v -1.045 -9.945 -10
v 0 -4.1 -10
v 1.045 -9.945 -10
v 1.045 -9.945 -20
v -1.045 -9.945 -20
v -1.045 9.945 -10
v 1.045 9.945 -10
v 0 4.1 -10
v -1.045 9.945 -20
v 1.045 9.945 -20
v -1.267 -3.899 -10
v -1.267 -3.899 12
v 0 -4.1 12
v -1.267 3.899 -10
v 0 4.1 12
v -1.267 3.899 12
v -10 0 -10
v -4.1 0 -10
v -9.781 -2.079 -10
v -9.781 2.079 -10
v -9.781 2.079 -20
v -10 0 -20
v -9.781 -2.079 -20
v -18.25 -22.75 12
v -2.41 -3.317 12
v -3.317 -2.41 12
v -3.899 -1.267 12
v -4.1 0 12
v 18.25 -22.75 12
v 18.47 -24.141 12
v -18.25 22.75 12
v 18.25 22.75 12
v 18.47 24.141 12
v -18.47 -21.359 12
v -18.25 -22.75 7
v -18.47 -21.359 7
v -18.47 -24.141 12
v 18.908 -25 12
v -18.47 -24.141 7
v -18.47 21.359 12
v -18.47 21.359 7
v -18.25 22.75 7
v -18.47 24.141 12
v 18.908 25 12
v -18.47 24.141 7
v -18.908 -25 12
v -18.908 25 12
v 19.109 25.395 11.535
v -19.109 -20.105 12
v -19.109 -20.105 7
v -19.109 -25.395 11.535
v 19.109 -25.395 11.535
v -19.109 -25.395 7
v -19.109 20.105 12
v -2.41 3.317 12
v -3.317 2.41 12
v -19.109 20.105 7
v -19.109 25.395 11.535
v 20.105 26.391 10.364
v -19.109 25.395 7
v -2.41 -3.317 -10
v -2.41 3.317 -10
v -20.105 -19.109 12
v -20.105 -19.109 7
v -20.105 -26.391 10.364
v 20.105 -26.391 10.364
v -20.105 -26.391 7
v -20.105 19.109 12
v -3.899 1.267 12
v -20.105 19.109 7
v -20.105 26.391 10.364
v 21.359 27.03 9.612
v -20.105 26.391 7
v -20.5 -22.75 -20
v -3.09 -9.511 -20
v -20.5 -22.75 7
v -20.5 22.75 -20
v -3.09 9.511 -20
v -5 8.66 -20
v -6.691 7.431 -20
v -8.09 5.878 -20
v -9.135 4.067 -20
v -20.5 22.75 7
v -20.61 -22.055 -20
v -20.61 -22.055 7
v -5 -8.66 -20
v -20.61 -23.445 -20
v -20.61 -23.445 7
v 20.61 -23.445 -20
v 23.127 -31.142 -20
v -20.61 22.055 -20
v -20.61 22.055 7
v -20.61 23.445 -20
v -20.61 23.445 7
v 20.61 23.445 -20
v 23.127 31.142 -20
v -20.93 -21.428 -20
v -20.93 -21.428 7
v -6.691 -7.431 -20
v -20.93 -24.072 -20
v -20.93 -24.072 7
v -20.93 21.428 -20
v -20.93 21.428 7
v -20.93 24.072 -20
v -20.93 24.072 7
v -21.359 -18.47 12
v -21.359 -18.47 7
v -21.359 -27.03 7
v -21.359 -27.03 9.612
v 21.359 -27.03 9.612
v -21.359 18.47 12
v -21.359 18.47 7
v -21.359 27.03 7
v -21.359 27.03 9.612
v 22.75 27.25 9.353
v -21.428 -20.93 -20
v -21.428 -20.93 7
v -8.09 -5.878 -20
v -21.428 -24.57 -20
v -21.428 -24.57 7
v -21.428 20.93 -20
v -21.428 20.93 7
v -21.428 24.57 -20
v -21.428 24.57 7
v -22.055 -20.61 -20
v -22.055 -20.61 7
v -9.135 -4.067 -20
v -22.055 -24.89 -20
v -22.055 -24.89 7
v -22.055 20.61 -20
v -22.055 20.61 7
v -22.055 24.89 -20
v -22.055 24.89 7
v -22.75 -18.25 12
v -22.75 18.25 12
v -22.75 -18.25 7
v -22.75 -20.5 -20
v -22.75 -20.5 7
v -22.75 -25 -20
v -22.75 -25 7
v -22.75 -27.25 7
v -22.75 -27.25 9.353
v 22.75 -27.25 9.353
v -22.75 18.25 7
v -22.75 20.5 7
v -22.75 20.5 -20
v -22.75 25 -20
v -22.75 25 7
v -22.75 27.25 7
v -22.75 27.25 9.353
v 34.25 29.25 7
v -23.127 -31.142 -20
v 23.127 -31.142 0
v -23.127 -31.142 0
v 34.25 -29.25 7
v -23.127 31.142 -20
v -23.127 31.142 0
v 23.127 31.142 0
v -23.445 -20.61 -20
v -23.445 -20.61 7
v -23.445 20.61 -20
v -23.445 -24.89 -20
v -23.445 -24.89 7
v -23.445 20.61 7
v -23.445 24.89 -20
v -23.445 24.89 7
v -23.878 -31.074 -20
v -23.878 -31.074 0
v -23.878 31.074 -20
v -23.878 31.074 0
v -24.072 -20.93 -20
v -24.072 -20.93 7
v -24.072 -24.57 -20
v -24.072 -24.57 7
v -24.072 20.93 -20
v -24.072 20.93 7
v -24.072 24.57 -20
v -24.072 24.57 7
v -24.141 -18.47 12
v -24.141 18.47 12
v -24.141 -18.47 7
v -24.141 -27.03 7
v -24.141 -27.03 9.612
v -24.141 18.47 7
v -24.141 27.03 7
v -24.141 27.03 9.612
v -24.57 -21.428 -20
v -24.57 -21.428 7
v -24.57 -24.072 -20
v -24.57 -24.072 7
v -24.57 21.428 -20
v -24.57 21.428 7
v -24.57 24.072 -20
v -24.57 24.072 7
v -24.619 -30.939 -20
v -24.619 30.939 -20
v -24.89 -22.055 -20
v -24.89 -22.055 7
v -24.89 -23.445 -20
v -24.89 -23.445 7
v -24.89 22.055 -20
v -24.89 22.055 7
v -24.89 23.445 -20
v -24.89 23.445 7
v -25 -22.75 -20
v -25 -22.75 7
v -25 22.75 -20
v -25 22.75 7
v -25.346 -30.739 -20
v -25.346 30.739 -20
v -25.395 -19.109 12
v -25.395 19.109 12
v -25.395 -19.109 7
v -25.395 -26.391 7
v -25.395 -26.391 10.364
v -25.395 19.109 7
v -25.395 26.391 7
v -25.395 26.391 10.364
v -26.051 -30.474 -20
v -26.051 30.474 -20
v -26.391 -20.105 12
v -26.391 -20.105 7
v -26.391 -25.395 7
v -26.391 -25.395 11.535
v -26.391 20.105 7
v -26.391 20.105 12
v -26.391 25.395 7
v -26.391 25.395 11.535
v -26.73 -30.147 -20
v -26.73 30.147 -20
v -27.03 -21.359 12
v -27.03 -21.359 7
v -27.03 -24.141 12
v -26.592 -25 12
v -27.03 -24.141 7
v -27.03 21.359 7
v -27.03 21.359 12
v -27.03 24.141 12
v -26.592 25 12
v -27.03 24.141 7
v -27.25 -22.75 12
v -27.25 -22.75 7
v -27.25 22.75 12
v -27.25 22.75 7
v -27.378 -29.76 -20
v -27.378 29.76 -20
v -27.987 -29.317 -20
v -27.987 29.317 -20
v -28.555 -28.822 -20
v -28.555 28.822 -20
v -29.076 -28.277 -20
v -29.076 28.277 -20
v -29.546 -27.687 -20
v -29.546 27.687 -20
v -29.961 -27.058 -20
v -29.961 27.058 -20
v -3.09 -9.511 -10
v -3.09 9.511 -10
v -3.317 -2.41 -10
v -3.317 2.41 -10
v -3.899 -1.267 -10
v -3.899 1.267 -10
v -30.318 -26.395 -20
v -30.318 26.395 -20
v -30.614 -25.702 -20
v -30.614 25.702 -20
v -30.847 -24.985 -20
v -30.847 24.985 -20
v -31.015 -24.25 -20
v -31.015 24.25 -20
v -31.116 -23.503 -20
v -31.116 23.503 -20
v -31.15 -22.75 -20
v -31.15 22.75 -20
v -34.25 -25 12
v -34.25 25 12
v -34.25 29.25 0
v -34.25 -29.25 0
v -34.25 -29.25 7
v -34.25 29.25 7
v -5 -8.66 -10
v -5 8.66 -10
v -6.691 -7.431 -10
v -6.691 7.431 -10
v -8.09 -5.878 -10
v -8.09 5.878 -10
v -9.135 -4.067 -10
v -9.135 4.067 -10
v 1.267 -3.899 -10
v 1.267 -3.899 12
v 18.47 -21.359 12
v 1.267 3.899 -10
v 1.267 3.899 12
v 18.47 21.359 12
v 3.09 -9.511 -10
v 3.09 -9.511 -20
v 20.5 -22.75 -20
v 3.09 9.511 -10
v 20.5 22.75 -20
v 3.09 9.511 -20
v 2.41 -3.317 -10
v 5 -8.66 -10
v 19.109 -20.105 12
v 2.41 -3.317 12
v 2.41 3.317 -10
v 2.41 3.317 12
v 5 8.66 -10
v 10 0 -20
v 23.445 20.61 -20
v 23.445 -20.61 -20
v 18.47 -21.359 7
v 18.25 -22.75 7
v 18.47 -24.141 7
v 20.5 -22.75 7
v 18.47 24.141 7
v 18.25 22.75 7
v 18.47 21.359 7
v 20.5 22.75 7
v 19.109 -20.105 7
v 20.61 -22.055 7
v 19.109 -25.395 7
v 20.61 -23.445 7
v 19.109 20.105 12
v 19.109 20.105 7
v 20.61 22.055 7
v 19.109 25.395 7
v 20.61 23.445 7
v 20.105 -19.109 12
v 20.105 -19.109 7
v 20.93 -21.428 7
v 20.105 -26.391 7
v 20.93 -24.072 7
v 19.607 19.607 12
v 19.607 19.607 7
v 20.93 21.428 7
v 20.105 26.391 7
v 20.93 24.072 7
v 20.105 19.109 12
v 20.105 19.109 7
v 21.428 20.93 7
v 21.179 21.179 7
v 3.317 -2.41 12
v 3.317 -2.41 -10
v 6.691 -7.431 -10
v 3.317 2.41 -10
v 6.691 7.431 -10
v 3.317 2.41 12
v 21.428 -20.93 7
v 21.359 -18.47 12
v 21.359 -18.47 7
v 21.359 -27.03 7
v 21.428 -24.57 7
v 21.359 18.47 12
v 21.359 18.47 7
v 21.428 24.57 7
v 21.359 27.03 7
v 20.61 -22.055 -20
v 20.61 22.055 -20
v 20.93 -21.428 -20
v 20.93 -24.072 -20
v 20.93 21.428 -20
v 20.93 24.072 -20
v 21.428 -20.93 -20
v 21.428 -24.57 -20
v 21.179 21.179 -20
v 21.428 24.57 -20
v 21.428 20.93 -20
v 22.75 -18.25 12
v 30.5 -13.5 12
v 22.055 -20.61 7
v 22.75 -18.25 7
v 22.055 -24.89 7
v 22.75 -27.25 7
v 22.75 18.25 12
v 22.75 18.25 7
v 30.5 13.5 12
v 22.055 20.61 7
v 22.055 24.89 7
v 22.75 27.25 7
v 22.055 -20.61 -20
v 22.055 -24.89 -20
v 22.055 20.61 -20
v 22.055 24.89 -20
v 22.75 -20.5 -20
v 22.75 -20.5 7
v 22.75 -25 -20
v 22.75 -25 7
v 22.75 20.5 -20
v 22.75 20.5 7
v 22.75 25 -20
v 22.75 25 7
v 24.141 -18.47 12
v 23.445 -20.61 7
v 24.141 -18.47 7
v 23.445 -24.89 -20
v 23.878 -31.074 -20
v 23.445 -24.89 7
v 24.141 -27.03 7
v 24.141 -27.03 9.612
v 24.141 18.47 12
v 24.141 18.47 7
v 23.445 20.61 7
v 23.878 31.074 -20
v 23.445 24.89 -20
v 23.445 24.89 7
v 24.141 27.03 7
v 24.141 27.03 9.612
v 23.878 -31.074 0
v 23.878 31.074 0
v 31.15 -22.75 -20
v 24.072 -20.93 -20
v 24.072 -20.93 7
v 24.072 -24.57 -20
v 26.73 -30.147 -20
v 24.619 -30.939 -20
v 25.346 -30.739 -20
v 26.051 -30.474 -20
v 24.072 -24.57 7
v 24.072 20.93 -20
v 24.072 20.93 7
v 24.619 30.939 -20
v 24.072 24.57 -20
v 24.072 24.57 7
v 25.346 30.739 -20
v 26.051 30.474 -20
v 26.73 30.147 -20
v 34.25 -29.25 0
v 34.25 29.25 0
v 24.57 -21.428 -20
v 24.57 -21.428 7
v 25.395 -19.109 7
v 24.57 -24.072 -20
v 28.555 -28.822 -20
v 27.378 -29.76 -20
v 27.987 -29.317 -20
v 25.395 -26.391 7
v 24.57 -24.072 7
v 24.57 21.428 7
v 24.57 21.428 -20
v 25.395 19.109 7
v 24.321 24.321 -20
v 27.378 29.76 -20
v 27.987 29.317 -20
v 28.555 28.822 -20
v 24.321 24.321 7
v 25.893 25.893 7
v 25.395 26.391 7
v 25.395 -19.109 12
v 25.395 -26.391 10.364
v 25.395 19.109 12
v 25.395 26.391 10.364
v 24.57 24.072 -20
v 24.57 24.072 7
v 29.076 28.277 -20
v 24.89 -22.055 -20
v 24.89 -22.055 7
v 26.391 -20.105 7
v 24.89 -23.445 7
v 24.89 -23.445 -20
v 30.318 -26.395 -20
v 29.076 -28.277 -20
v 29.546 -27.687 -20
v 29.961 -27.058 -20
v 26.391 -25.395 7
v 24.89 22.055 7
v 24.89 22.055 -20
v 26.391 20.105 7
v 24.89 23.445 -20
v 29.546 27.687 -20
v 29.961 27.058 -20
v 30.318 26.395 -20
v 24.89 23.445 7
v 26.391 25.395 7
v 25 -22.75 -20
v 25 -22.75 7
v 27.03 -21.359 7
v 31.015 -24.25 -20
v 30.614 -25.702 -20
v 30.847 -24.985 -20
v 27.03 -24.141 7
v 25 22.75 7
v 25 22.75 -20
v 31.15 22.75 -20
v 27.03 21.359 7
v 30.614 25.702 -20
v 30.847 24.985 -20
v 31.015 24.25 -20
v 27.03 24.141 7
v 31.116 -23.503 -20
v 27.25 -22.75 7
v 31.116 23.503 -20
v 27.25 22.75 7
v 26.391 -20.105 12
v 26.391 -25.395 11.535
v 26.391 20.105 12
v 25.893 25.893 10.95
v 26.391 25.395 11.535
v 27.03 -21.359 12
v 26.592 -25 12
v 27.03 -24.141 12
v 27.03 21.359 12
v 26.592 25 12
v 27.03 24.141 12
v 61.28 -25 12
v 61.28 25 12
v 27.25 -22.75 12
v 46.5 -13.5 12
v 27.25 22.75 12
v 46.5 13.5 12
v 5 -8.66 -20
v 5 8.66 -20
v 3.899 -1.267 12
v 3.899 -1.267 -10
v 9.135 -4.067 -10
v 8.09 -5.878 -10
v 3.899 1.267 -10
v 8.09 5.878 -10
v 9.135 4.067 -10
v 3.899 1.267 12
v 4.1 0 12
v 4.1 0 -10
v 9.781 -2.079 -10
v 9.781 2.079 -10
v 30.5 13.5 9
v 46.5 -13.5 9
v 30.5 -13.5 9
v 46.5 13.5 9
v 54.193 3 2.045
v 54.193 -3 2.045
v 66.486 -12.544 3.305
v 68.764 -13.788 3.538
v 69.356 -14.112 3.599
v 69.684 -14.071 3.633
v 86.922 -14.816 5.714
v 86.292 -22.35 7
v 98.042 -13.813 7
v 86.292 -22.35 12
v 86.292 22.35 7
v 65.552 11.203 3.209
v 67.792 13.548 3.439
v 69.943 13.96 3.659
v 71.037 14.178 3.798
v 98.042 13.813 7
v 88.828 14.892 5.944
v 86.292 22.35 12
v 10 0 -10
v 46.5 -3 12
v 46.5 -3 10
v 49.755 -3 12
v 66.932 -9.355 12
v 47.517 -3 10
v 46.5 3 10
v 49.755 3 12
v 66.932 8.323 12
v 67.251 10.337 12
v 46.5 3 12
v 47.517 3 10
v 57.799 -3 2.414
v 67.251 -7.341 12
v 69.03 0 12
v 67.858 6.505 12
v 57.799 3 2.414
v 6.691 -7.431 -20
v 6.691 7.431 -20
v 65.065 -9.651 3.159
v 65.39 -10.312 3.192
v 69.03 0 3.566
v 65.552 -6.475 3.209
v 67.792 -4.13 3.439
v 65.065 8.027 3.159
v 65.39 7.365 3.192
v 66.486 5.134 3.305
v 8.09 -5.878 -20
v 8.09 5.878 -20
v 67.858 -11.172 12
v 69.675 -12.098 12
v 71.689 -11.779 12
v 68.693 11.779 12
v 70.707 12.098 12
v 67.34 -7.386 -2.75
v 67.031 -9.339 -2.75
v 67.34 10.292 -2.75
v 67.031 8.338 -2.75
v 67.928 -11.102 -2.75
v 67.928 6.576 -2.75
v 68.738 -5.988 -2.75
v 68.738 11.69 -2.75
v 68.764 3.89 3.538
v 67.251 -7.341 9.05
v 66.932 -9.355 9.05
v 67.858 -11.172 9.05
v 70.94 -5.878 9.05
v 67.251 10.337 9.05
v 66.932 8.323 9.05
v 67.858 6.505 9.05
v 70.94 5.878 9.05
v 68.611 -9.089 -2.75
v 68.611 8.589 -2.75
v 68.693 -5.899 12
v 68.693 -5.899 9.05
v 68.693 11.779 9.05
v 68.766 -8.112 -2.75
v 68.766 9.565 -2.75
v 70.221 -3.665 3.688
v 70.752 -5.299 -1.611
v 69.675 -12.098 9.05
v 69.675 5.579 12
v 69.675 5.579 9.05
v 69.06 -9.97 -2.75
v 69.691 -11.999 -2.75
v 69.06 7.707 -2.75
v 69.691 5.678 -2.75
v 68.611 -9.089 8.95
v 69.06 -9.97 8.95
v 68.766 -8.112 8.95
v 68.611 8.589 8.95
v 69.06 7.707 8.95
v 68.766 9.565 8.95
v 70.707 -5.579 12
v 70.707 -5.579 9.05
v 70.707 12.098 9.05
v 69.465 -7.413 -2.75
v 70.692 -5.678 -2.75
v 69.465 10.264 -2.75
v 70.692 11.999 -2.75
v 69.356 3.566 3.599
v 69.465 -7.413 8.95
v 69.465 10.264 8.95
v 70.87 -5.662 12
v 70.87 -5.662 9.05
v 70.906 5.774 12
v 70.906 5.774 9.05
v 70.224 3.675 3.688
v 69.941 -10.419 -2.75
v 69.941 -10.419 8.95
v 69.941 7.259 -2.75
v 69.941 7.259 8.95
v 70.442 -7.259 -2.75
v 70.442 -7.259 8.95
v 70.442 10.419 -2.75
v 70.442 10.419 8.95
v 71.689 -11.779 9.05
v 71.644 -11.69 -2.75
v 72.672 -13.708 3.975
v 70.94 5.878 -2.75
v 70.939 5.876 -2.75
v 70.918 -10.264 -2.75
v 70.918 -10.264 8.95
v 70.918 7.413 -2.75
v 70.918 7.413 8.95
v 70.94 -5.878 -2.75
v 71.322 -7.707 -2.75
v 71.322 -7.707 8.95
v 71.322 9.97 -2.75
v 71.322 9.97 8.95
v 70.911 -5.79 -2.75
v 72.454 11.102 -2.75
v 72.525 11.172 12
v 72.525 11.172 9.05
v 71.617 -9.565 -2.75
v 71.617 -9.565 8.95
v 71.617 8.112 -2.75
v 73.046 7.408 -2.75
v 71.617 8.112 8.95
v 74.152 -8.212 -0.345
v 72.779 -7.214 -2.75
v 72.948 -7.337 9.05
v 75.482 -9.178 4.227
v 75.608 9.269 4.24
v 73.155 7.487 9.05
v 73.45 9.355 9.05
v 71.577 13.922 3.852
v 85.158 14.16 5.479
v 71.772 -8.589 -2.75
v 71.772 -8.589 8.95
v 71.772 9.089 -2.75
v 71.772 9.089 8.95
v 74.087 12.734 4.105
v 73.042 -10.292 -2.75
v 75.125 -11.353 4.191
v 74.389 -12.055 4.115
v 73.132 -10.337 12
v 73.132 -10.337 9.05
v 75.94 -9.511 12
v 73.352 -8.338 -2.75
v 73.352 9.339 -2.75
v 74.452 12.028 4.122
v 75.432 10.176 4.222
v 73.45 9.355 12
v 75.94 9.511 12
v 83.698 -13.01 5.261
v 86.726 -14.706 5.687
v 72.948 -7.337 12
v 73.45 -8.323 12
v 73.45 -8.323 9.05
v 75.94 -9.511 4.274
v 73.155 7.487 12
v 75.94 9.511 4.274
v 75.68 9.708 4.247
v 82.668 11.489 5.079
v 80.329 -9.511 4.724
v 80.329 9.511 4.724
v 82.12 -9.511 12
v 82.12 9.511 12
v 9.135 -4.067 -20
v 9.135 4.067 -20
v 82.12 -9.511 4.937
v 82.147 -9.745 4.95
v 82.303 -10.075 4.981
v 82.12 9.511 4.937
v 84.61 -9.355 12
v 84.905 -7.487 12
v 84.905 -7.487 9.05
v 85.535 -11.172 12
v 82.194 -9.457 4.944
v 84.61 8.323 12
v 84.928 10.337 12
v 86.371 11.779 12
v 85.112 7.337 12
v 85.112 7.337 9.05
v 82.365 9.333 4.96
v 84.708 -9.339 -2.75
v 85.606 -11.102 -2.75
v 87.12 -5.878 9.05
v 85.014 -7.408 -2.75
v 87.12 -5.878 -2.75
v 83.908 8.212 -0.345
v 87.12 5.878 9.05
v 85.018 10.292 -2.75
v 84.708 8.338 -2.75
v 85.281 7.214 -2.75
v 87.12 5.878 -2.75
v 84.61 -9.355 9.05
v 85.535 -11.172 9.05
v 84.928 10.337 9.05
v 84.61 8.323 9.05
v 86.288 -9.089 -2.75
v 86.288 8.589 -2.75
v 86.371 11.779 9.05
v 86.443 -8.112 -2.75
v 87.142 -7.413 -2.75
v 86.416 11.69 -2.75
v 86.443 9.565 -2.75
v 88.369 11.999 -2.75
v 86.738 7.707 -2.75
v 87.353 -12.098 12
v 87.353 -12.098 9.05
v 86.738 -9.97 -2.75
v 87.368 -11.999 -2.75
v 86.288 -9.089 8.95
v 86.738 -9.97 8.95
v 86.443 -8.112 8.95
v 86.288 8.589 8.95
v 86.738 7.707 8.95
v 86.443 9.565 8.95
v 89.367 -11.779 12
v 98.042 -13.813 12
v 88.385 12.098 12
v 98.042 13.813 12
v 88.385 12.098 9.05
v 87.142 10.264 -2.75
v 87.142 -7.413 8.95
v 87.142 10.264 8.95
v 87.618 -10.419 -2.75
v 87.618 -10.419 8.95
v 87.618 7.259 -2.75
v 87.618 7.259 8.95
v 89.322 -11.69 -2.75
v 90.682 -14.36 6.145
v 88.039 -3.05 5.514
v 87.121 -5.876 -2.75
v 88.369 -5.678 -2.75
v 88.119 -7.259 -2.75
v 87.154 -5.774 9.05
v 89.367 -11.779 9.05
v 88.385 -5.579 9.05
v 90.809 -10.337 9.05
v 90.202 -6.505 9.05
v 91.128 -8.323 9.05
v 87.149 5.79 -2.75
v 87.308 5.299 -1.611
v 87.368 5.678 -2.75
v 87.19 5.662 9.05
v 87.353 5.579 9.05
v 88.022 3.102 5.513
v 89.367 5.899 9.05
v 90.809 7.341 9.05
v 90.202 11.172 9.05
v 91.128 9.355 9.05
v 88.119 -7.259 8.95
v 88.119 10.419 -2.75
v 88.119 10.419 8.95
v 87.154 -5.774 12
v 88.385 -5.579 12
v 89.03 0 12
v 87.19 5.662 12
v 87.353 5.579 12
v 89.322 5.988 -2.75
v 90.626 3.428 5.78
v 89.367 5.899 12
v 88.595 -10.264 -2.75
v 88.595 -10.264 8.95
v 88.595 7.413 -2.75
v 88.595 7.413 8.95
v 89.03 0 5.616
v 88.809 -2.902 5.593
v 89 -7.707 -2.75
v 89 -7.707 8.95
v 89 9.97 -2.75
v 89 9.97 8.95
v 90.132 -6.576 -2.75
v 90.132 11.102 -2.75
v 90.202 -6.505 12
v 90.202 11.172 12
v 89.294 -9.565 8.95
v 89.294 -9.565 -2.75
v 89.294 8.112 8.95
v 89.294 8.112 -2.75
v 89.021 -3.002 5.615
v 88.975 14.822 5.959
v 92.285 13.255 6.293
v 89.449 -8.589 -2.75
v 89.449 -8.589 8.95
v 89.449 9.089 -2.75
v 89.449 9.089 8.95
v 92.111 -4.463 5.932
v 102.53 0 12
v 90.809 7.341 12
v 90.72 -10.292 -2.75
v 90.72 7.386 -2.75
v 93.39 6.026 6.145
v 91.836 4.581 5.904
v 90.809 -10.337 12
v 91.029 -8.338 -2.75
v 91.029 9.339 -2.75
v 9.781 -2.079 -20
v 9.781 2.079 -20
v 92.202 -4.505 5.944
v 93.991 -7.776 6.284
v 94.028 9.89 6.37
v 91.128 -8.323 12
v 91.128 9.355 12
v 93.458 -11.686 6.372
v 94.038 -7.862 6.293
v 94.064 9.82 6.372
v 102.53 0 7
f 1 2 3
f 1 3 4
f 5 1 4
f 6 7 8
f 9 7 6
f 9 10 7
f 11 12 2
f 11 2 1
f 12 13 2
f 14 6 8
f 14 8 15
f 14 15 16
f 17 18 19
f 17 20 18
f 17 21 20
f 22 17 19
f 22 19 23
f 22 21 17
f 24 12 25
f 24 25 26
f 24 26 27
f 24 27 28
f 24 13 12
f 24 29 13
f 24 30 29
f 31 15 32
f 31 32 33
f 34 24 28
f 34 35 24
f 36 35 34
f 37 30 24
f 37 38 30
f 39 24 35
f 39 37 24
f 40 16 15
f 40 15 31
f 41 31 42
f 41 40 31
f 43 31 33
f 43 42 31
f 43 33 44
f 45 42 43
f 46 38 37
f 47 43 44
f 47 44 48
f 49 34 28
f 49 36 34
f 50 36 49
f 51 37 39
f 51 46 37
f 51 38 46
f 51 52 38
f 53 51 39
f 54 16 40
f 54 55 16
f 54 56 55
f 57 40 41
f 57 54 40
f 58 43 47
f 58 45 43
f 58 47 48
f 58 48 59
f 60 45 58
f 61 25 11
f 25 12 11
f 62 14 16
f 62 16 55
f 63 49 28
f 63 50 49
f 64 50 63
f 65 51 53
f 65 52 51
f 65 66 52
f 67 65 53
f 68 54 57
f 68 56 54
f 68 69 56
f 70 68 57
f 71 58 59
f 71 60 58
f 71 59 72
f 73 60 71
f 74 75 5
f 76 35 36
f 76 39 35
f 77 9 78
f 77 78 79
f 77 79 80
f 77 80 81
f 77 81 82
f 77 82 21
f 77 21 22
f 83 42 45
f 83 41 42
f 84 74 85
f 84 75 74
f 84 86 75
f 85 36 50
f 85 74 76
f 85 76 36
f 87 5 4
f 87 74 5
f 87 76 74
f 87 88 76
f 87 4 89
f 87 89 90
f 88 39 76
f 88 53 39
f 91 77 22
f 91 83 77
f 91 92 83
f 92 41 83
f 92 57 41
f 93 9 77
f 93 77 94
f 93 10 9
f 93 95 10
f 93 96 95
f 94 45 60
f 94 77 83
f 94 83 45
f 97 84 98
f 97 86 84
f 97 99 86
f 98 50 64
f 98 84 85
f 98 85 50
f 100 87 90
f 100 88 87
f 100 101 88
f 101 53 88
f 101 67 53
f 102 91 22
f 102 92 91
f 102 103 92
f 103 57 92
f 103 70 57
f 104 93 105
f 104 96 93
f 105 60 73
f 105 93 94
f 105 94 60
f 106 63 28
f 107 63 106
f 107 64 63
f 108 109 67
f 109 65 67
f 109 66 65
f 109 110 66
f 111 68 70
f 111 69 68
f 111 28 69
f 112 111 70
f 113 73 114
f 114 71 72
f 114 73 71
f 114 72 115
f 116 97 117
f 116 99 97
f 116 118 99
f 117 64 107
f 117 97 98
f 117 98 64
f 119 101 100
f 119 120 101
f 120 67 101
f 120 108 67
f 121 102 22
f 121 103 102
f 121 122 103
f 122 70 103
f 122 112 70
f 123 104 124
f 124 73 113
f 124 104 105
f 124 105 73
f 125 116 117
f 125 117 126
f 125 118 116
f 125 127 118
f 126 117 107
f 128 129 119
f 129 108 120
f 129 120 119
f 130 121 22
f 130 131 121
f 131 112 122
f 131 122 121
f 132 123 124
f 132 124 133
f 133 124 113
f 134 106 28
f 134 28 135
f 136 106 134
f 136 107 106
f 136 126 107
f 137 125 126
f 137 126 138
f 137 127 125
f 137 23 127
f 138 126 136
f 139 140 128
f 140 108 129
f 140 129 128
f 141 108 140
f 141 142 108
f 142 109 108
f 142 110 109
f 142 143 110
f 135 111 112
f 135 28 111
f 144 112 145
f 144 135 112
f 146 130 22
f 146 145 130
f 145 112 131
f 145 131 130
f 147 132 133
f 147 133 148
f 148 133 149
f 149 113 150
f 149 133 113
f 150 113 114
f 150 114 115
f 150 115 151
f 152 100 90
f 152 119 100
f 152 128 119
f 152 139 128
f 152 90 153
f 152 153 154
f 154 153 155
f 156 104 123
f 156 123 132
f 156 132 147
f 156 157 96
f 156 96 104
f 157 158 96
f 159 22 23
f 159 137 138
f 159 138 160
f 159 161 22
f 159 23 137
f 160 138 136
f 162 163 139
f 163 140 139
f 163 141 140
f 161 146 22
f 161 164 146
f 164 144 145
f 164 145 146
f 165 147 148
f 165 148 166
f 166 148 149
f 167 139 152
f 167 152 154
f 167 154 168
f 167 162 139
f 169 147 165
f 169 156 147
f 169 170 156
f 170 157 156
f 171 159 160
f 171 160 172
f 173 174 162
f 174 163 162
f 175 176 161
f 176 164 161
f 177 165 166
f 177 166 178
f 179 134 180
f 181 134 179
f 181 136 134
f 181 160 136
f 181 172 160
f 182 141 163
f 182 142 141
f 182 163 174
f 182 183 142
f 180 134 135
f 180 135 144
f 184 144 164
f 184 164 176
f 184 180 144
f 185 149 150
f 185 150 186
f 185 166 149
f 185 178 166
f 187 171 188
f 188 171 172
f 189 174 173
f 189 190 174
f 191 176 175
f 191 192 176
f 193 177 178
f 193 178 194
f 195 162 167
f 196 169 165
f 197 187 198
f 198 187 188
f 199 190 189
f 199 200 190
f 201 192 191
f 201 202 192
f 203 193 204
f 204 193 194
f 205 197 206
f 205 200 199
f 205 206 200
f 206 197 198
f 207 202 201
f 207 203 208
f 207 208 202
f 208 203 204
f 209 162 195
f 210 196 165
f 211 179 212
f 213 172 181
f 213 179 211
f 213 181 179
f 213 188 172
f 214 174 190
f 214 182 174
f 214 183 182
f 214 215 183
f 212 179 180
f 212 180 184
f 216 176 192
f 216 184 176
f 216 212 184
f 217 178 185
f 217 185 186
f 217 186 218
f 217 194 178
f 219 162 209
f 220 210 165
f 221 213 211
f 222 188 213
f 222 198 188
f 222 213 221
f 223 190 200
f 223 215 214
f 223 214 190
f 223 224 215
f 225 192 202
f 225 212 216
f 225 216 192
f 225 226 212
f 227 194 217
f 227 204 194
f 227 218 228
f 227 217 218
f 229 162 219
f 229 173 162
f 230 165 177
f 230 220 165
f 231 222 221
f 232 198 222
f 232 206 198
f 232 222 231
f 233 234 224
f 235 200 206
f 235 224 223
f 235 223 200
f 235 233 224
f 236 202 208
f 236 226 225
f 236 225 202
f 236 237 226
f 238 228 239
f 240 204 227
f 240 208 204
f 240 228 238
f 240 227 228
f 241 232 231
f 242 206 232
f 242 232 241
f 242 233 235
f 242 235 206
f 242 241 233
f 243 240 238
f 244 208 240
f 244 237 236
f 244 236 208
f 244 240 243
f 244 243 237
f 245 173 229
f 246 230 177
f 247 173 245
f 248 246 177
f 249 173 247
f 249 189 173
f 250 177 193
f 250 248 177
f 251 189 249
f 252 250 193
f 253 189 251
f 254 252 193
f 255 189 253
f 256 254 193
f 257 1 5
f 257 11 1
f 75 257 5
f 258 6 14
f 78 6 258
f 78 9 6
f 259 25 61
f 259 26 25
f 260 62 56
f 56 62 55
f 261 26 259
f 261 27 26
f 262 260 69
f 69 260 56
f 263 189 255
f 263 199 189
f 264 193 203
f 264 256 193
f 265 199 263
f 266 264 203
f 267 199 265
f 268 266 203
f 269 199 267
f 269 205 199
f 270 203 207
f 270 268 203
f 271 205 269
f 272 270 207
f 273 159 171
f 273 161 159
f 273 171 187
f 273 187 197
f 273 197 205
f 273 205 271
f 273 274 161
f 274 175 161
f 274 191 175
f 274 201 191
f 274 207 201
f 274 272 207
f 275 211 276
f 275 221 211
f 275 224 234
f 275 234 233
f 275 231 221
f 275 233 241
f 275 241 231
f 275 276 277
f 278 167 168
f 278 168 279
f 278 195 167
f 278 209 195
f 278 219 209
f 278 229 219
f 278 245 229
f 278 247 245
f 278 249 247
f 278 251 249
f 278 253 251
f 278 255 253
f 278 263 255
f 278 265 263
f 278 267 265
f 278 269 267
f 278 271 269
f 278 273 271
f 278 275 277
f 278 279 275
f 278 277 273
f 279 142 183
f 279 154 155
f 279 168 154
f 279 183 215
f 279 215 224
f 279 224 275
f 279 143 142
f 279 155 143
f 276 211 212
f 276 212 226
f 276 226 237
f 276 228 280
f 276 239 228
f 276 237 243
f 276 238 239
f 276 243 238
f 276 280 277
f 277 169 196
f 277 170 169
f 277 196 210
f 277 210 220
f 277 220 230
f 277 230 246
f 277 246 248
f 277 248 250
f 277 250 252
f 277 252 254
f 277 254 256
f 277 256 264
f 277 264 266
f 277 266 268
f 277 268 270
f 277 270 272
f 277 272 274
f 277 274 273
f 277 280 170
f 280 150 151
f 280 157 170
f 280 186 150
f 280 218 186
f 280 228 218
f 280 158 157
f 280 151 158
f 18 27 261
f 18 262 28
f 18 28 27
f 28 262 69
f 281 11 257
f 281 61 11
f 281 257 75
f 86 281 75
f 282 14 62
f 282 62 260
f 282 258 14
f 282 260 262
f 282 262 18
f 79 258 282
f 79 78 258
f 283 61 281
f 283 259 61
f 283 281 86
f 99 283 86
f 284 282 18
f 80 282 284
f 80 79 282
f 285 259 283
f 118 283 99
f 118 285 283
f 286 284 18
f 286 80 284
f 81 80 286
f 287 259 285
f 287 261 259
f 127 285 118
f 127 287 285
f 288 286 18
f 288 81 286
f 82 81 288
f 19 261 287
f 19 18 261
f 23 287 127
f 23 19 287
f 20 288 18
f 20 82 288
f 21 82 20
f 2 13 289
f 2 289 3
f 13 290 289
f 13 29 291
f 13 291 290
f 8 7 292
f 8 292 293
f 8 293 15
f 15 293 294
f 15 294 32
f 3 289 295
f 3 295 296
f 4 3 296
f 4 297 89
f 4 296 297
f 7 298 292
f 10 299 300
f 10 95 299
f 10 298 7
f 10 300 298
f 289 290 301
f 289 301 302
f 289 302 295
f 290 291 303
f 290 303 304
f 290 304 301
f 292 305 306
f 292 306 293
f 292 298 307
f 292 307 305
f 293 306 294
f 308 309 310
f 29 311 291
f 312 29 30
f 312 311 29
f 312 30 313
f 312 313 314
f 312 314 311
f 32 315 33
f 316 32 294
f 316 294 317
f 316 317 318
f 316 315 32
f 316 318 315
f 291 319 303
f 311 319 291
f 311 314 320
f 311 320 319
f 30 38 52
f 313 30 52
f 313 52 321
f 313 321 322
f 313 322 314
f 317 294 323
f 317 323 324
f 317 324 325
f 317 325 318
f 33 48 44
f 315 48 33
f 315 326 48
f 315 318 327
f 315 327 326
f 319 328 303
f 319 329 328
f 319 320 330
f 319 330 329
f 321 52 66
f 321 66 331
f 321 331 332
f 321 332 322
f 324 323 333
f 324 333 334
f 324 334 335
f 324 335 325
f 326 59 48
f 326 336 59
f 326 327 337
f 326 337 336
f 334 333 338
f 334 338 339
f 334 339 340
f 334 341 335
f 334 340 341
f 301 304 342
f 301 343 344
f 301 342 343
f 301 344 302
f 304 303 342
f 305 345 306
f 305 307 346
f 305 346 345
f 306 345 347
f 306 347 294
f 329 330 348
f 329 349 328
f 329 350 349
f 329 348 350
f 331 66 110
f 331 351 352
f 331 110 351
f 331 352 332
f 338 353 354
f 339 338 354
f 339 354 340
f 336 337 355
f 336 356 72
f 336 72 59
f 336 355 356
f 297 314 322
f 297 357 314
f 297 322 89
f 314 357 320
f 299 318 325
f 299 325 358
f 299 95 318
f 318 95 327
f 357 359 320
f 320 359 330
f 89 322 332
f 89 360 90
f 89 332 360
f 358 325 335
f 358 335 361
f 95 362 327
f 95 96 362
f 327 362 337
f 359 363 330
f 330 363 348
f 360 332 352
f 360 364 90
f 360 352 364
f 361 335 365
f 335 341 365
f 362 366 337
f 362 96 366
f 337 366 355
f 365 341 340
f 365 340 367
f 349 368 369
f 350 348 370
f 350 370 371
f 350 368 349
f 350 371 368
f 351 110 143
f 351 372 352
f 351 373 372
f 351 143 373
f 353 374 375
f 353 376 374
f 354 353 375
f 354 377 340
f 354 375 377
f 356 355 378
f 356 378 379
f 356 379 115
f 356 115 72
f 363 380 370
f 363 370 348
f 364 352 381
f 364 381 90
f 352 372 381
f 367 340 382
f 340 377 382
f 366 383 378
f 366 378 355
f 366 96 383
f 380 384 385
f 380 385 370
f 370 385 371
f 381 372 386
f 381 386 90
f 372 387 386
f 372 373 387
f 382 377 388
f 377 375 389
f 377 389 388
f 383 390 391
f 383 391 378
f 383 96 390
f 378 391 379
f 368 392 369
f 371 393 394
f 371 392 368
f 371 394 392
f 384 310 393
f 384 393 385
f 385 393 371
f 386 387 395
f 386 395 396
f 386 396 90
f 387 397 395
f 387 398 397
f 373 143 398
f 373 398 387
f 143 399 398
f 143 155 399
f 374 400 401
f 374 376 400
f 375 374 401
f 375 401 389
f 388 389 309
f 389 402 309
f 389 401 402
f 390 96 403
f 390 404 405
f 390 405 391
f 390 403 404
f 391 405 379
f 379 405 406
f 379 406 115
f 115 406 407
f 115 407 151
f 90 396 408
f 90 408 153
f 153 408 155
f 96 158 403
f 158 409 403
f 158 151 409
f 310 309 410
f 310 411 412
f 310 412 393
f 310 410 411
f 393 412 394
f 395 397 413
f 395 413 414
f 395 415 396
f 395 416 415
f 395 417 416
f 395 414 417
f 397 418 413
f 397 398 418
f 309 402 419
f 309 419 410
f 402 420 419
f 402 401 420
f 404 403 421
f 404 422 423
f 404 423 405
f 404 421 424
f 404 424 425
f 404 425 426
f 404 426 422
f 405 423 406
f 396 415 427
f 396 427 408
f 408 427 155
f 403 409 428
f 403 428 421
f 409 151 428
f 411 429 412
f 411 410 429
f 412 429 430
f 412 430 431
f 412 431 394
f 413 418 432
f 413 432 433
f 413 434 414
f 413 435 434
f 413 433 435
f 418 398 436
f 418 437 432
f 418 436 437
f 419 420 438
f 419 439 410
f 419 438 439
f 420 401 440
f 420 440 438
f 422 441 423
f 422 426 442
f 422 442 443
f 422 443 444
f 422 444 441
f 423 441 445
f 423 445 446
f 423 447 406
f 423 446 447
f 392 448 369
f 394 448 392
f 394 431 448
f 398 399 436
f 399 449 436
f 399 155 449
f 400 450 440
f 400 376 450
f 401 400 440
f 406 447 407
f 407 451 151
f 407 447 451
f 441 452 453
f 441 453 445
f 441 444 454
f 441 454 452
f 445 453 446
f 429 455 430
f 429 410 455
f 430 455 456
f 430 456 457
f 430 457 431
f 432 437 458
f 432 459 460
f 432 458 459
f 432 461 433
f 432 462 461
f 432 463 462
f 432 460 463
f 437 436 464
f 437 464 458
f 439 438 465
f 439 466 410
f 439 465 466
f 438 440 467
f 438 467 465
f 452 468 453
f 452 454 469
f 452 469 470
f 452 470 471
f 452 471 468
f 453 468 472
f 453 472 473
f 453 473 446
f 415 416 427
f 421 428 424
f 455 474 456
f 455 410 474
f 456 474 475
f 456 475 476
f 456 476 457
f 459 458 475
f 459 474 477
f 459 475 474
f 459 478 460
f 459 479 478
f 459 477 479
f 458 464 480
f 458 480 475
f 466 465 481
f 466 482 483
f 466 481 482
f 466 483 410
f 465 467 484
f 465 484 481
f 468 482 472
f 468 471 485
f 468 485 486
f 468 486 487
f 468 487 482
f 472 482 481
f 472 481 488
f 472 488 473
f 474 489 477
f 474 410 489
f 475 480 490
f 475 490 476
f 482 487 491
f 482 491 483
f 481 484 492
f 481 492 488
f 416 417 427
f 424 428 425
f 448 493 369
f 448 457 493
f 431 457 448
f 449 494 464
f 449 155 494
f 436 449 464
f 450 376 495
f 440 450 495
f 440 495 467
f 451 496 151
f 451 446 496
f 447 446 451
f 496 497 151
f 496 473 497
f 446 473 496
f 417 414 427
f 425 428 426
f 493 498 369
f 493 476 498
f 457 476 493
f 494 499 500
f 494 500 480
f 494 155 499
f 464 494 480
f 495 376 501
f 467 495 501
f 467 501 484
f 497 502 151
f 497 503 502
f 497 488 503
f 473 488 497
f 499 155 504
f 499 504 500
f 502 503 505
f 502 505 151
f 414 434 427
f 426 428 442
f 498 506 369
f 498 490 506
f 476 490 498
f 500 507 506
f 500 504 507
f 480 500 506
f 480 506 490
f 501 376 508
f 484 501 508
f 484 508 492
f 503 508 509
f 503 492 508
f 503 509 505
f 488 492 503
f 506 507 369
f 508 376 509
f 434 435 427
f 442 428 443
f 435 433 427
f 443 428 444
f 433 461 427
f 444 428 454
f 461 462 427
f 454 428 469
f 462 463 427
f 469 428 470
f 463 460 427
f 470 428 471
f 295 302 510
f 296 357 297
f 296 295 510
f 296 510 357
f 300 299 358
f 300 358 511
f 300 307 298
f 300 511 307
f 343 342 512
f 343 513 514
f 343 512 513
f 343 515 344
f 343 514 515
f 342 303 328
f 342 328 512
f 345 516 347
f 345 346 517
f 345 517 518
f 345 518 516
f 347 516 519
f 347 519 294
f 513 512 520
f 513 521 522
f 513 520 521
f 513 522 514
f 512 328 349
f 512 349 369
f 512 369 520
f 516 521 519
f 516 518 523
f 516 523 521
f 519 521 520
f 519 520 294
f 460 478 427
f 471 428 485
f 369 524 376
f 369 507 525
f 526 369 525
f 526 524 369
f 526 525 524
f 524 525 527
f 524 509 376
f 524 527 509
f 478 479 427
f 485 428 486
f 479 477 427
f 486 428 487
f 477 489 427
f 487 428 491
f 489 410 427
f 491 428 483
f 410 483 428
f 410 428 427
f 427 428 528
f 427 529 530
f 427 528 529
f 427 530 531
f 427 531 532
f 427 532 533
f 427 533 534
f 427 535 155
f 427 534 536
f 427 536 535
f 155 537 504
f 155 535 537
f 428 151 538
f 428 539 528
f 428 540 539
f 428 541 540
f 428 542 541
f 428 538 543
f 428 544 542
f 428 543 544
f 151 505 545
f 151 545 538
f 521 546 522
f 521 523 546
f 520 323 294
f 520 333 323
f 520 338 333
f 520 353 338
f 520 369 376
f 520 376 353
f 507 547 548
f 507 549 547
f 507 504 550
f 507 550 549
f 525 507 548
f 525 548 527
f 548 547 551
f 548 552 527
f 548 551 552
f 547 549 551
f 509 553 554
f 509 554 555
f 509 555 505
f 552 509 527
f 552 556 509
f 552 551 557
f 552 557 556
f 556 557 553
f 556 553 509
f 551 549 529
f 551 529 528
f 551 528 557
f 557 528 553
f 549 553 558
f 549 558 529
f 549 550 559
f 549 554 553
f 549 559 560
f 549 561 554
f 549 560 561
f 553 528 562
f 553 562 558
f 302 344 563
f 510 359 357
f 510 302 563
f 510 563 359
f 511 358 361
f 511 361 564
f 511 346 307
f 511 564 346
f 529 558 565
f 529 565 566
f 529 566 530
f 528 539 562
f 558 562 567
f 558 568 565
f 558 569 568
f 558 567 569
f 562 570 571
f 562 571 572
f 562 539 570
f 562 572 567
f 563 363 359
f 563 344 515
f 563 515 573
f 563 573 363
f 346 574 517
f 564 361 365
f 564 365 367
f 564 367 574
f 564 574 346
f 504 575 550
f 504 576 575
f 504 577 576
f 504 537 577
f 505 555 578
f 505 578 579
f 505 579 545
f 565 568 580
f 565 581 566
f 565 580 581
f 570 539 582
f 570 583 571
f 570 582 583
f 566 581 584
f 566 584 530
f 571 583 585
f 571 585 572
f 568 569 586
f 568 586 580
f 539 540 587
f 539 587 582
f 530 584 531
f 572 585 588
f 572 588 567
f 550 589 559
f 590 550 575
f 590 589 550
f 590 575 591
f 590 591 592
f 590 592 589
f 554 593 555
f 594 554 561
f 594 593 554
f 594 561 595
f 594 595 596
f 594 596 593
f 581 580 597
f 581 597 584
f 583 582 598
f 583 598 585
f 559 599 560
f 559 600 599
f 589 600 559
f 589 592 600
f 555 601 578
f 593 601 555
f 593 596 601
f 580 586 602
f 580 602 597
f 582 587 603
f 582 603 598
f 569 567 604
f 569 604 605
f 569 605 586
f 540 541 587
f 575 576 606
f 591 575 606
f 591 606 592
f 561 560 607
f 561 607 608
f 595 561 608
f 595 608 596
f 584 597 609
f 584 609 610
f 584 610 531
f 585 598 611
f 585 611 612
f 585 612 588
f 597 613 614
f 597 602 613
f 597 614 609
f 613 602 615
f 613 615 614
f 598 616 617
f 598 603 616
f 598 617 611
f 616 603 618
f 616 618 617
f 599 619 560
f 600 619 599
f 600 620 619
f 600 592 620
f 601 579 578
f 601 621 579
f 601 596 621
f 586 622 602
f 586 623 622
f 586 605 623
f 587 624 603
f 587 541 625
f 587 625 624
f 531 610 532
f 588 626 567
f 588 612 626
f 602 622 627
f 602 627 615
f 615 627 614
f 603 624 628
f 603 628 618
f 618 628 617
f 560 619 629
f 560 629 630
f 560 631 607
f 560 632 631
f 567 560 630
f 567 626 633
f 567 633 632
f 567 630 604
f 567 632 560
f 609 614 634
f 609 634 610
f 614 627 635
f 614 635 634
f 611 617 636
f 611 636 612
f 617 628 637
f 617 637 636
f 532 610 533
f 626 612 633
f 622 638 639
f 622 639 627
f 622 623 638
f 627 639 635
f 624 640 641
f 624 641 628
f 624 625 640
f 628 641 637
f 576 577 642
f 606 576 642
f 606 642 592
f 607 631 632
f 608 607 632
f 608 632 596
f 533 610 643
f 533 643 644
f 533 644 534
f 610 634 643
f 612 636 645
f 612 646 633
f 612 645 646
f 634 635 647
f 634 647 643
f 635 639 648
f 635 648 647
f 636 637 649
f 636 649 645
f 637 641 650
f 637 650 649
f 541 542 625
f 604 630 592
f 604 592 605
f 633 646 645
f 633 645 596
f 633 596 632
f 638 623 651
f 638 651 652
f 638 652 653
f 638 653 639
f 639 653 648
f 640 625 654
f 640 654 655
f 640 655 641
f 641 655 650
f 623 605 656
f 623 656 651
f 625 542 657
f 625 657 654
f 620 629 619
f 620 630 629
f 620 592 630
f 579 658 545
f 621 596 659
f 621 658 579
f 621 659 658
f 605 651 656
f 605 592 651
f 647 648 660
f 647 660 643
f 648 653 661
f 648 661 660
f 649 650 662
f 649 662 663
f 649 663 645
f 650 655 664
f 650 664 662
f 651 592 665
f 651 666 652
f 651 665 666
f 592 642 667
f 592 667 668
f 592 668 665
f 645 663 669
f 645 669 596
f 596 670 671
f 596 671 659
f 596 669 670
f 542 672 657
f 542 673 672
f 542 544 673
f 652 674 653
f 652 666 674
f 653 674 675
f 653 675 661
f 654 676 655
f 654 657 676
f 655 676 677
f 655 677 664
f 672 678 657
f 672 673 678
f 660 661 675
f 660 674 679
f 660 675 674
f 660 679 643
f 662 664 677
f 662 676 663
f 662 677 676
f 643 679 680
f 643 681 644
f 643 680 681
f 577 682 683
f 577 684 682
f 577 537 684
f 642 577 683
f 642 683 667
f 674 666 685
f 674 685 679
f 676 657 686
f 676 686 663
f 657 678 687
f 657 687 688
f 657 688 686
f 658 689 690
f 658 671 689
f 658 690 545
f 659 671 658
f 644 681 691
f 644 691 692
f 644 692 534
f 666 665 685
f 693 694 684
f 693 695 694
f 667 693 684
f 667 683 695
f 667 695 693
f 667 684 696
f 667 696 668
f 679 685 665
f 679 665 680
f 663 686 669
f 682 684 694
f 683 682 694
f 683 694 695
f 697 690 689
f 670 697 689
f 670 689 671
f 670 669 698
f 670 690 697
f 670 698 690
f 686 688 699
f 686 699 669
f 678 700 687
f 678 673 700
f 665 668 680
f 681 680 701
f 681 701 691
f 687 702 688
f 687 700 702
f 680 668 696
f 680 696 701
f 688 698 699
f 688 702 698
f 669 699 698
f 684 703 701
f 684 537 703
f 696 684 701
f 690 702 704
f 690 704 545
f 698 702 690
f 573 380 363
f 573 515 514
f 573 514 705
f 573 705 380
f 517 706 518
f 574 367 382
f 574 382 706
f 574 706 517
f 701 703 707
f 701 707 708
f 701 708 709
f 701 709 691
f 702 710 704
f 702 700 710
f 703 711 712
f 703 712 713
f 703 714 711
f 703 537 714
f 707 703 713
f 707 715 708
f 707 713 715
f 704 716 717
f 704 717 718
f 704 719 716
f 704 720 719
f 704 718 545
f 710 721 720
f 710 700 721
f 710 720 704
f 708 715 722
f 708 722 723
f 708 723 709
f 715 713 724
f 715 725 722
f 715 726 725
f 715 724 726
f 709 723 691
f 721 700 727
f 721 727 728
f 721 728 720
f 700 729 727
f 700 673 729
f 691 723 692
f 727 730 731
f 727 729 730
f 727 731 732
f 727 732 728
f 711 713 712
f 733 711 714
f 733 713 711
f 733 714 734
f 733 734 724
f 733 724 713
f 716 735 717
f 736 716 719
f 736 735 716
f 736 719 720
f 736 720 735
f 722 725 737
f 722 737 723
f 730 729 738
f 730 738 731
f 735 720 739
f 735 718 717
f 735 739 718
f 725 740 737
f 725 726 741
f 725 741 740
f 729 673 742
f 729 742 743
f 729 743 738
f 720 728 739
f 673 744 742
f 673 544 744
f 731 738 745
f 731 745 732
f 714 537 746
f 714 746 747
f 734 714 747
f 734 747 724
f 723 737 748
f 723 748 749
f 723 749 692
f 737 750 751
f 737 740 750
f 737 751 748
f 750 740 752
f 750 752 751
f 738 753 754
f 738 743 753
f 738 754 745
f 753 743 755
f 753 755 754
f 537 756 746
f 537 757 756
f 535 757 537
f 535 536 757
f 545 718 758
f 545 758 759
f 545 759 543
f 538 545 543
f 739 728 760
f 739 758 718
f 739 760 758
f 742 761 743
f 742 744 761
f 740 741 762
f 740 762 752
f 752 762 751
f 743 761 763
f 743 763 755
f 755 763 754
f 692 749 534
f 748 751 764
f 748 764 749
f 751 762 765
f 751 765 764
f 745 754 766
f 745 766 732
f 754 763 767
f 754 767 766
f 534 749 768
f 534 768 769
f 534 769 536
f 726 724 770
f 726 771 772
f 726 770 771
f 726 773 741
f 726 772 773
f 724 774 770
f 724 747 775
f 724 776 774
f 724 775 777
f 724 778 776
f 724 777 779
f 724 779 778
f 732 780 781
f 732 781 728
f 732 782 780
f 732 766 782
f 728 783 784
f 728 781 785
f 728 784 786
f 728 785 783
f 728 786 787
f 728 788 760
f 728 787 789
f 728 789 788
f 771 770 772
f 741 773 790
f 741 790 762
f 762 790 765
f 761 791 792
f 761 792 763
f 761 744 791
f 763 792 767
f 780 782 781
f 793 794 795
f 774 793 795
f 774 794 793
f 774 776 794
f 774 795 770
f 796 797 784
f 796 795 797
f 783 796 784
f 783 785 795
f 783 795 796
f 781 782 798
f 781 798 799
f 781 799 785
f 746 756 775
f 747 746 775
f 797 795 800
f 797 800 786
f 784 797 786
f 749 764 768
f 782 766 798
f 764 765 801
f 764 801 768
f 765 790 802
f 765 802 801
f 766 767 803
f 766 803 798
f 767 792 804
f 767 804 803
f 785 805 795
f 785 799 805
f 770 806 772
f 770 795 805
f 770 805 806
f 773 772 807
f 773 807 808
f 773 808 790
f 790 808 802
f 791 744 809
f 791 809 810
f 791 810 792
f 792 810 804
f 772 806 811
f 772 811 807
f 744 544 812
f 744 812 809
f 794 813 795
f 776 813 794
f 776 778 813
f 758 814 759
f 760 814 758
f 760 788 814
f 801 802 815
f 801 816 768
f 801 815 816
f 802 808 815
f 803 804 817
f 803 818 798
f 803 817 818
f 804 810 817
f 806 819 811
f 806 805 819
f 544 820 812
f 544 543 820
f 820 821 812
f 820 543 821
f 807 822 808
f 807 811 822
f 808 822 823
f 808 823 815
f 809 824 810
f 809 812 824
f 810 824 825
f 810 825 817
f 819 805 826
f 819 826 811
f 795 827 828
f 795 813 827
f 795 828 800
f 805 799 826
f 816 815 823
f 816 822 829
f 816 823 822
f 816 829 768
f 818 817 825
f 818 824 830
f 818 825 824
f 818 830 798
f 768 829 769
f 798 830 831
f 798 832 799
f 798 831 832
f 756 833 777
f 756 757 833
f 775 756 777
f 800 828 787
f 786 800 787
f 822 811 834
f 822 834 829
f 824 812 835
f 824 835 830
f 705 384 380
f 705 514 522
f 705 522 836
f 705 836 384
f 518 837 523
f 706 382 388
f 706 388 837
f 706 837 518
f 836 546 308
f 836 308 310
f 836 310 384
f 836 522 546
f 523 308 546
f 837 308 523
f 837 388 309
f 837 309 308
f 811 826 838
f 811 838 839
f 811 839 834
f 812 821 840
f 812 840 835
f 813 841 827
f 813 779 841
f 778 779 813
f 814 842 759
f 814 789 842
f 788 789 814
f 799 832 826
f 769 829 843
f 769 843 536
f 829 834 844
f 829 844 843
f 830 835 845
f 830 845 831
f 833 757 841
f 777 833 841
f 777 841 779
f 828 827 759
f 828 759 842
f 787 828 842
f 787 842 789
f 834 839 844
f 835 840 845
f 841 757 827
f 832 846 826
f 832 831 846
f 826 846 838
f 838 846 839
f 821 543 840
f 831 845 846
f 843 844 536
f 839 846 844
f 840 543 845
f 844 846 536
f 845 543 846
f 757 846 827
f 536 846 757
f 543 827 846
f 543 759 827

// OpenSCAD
// file: lib/rotor_joint.scad
/*
pro díl do kterého se zastrkávají matky z boku
    rotor_joint(1);

pro díl který obsahuje jen díry na šrouby M4
    rotor_joint(2);

pro díl co má díry na matky ze shora
    rotor_joint(3);
*/


include <../../parameters.scad>

module rotor_joint(mode, thickness=10) {
    module screw_nut_hole() {
        difference() {
            translate([(ALU_profile_width/2+ALU_profile_holder_wall_thickness+M4_screw_diameter), (ALU_profile_width/2+ALU_profile_holder_wall_thickness+M4_screw_diameter), 0])
                cylinder(d=M4_screw_diameter, h=thickness+0.1, center=true, $fn=20);
            translate([(ALU_profile_width/2+ALU_profile_holder_wall_thickness+M4_screw_diameter), (ALU_profile_width/2+ALU_profile_holder_wall_thickness+M4_screw_diameter), thickness/2+.01])
                cylinder(d=M4_screw_diameter, h=1, $fn=20); 
        }

        hull() {
            translate([(ALU_profile_width/2+ALU_profile_holder_wall_thickness+M4_screw_diameter), (ALU_profile_width/2+ALU_profile_holder_wall_thickness+M4_screw_diameter), 0])
                rotate([0, 0, 30])
                    cylinder(d=M4_nut_diameter, h=M4_nut_height, $fn=6, center=true);

            translate([(ALU_profile_width/2+ALU_profile_holder_wall_thickness+M4_screw_diameter), (ALU_profile_width/2+ALU_profile_holder_wall_thickness+M4_screw_diameter)+M4_screw_diameter*2, 0])
                cube([M4_nut_pocket, M4_screw_diameter, M4_nut_height], center=true);
        }
    }

    difference() {
        minkowski() {
            cube([ALU_profile_width+ALU_profile_holder_wall_thickness*2+M4_screw_diameter*2, ALU_profile_width+ALU_profile_holder_wall_thickness*2+M4_screw_diameter*2, thickness/2], center=true);
            cylinder(d=M4_nut_diameter*2, h=thickness/2, $fn=70, center=true);
        }

        if(mode == 1) {
            for(i = [0:90:360]) {
                rotate([0, 0, i])
                    screw_nut_hole();
            }
        }
        else if(mode == 2) {
            for(i = [0:90:360])
            rotate([0, 0, i])
            translate([(ALU_profile_width/2+ALU_profile_holder_wall_thickness+M4_screw_diameter), (ALU_profile_width/2+ALU_profile_holder_wall_thickness+M4_screw_diameter), 0]) {
                cylinder(d=M4_screw_diameter, h=thickness+0.1, $fn=20, center=true);
            }
        }
        else if(mode == 3) {
            for(i = [0:90:360]) {
                rotate([0, 0, i])
                translate([(ALU_profile_width/2+ALU_profile_holder_wall_thickness+M4_screw_diameter), (ALU_profile_width/2+ALU_profile_holder_wall_thickness+M4_screw_diameter), 0]) {
                    cylinder(d=M4_screw_diameter, h=thickness, $fn=20, center=true);
                    translate([0, 0, thickness/2-M4_nut_height+0.1])
                    cylinder(d=M4_nut_diameter, h=M4_nut_height+0.1, $fn=6);
                }
            }
        }
    }
}

rotor_joint(2);
// file: ../parameters.scad
maximum_printable_size = 150;

layer_thickness = 0.3;
global_clearance = 0.5;


// scale parameters
tower_height = 220;
mid_base_width = 400;
mid_base_height = 160;
mid_base_length = 300;
base_mid_base_hinge_offset = 50;
counterweight_length = 200;


//Screw diameter and nut for M10 [mm]
M10_screw_diameter = 10.4;
M10_head_height = 10;
M10_head_diameter = 16+0.5;
M10_nut_height = 10.5;
M10_nut_diameter = 25.5;
M10_nut_pocket = 22.3;

//Screw diameter for M8 [mm]
M8_screw_diameter = 8.6;
M8_head_height = 8;
M8_head_diameter = 13.5;
M8_nut_height = 7.5;
M8_square_nut_thin_height = 4.5;
M8_nut_diameter = 14.4 + 0.5;
M8_nut_pocket = 13 + 0.5;
M8_washer_diameter = 16;
M8_washer_thickness = 1.5;


//Screw diameter and nut for M6 [mm]
M6_screw_diameter=6.5;
M6_head_diameter = 10+0.5;
M6_head_height = 6;
M6_nut_height = 4.9;
M6_nut_diameter = 11.8;
M6_nut_pocket = 10.4;
M6_square_nut_height = 3;
M6_square_nut_diameter = 10;
M6_washer_thickness = 1.6;

//Screw diameter and nut for M5 [mm]
M5_screw_diameter=5.5;
M5_head_height = 5;
M5_head_diameter = 13+0.5;
M5_nut_height = 4.5;
M5_nut_diameter = 9.4;
M5_nut_pocket = 8.4;

//Screw diameter and nut for M4 [mm]
M4_screw_diameter=4.5;
M4_screw_head_height = 4;
M4_nut_height = 3.2;
M4_nut_diameter = 8.4;
M4_nut_pocket = 7.5;

//Screw diameter and nut for M3 [mm]
M3_screw_diameter = 3.2;
M3_nut_height = 2.7;
M3_nut_diameter = 6.6;
M3_nut_pocket = 5.6;
M3_screw_head_height = 3;

//Screw diameter and nut for M2,5 [mm]
M2_5_screw_diameter = 2.7;
M2_5_nut_height = 2.3;
M2_5_nut_diameter = 6;
M2_5_nut_pocket = 5.5;

// kulove lozisko

bearing_efsm_08_h = 33+1;
bearing_efsm_08_m = 22;
bearing_efsm_08_db = 18;
bearing_efsm_08_ag = 10.5;
bearing_efsm_08_n = M4_screw_diameter;
bearing_efsm_08_a1 = 5.5;
bearing_efsm_08_d = 8.25;
bearing_efsm_08_B = 8; // ball height

bearing_efsm_10_h = 38+1;
bearing_efsm_10_m = 26;
bearing_efsm_10_db = 21.9;
bearing_efsm_10_ag = 12+0.2;
bearing_efsm_10_n = M5_screw_diameter;
bearing_efsm_10_a1 = 6.5;
bearing_efsm_10_d = 10.25;


bearing_efsm_12_width = 40+1;
bearing_efsm_12_h = bearing_efsm_12_width;
bearing_efsm_12_boltd = 28/2; // polovina vzdalenosti mezi srouby
bearing_efsm_12_m = bearing_efsm_12_boltd*2;
bearing_efsm_12_db = 25;
bearing_efsm_12_ag = 13;
bearing_efsm_12_a1 = 7;
bearing_efsm_12_n = M5_screw_diameter;
bearing_efsm_12_d = 12.15;
bearing_efsm_12_B = 10; // ball height
bearing_efsm_space = 1;

bearing_efsm_17_width = 54+1;
bearing_efsm_17_h = bearing_efsm_17_width;
bearing_efsm_17_boltd = 38/2; // polovina vzdalenosti mezi srouby
bearing_efsm_17_m = bearing_efsm_17_boltd*2;
bearing_efsm_17_db = 35;
bearing_efsm_17_ag = 18;
bearing_efsm_17_n = M6_screw_diameter;
bearing_efsm_17_a1 = 10;
bearing_efsm_17_B = 17; // ball height

//limcove lozisko
bearing_EFOM_10_L=26; //celkova sirka zakladny
bearing_EFOM_10_d1=10.3;//diametr otvoru real=10 mm
bearing_EFOM_10_dB=22;//diametr vystupku pro ulozeni lozika
bearing_EFOM_10_H=52;//celková delka zakladny
bearing_EFOM_10_J=36;// hole pitch
bearing_EFOM_10_A1=6.5;//vyska pouzdra
bearing_EFOM_10_Ag=12;//celkova vyska
bearing_EFOM_10_N1=5;//sirka otvoru pro sroub
bearing_EFOM_10_N2=8;//delka otvoru pro sroub
bearing_EFOM_10_m=36;//roztec der pro sroub
bearing_EFOM_10_h=9;//vyska lozika


608_bearing_outer_diameter = 22.3;
608_bearing_inner_diameter = 16;
608_bearing_thickness = 7.1;


// 20 KG servo parameters

servo_20kg_axis_offset = 9.375; // jak je osa mimo stredu
servo_20kg_body_x = 42;
servo_20kg_body_y = 21;
servo_20kg_body_z = 40;
servo_20kg_thread_x = 49/2;
servo_20kg_thread_y = 10/2;
servo_20kg_body_below = 10; // jak hluboko je tělo serva pod drzaky na srouby
servo_20kg_below = 25.8; // jak hluboko je páka serva pod drzaky na srouby

servo_20kg_bolt_d = 2.5+0.3;
servo_20kg_nut_d = 5+0.3;


//strain gauge
strain_gauge_width = 12.7;
strain_gauge_length = 75.1;
strain_gauge_screw_distance = 10;

//ALU profile
ALU_profile_width = 30.5;
ALU_profile_holder_wall_thickness = 3;
ALU_profile_groove_width = 8;

//pillow block bearing
//https://www.igus.eu/product/372
//Part no. KSTM-08
KSTM08_screws_distance = 33;         //m
KSTM08_screws_holes_diameter = 4.5;  //d2
KSTM08_flange_thickness = 6;         //h3
KSTM08_case_width = 9;               //C1
KSTM08_case_length = 47;             //a
KSTM08_ball_width = 12;              //B
KSTM08_ball_hole_diameter = 7.85;    //d1


//ložiska pro malý rotor
bearing_outer_diameter = 10.2;    // Rozměr B1 v nákresu s přídavkem na toleranci otvoru
bearing_thickness = 4;        // Rozměr B2 v nákresu
//bearing_shaft_length = 19.5;    // Rozměr B3 v nákresu, Originalni hodnota 19.5
bearing_shaft_length = 20;    // Rozměr B3 v nákresu


//parametry víčka s telemetrickou anténou
S01_sila_materialu=1.2;
S01_vyska_horni_zavit=10;
S01_hloubka_zavitu=4;
S01_prumer_vnitrni=50;
LO_spodni_prumer=17.2;
LO_vyska_bez_krytu=15;
S01_tolerance_zavit=1.5;
R01_vyska_prekryti_statoru=10;

g3_0_cone1 = 70;
g3_0_srcew_dist = 55;
// main file
include <../parameters.scad>
use <./lib/rotor_joint.scad>

module 888_1020(draft = true){


    hall_distance = 35; // distance between axis and magnet

    hall_length = 16;
    hall_length_offset = (11/2-2); // positiv is further from axis
    hall_width = 25+2;
    hall_thickness = 3;

    rotor_axis_diameter = 8.2;


    // 666_1236
    // 666_1007
    // 666_1212
    motor_distance = 79.03; // vzdalenost prerotatoru od hlavni pos_y
    motor_diameter = 35+2;
    motor_axis_diameter = 6.3;
    motor_puller_diameter = 20;
    motor_screw_diameter = M3_screw_diameter;
    motor_mounting_diameter = 25; // vzdalenost protejsich sroubu pro pridelani prerotatoru
    motor_sink = 9.5; // pro zapusteni bez podlozek na motoru...

    plate_overlap =  35; // jak moc velký má být přesah směrem k motoru..

    servo_join_y = 78; // vzdalenost kloubu pro servo
    servo_join_x = 45; // vzdalenost kloubku od osy rotoru
    servo_join_size = 15;

    plate_size_y = 50;
    plate_size_x = plate_overlap + motor_distance + motor_diameter/2;
    plate_size_z = 5;

    plate_bearing_center_distance = 7;


    joint_size_x = 60+0.5; // delka dorazu podle osy x
    joint_size_y = 50+0.5; //delka dorazu podle osy y
    joint_wall_thickness = 4;

    bearing_inner_diameter = 12.2;
    outer_diameter = bearing_efsm_12_d + 3;
    bearing_ball_height = 10.1;
    rim_height = 1;

    back_part_crop = 0;


    joint_size = 20;  //velikost drzaku

    //velikost otvoru pro matku soubu rotoru
    nut_height = 10;
    nut_diameter = 20;

    // pro EFSM-8

    /* bearing_inner_diameter = 8;
    outer_diameter = bearing_efsm_08_d + 3;
    bearing_ball_height = 10.1;
    rim_height = 1; */



      translate([0,0, plate_bearing_center_distance])
        difference(){
            union(){
                hull(){
                    translate([-(joint_size_x + joint_wall_thickness*2)/2 + back_part_crop, -plate_size_y/2, 0])
                        cube([plate_size_x - motor_diameter - back_part_crop, plate_size_y, plate_size_z]);

                    // cast nad motorem
                    translate([motor_distance, 0, 0])
                        cylinder(d = motor_diameter+10, h=plate_size_z, $fn = draft ? 10 : 100);

                    // ramecek pro dil 888_1015
                    translate([-(joint_size_x + joint_wall_thickness*2)/2 + back_part_crop, - (joint_size_y  + joint_wall_thickness*2)/2, -plate_bearing_center_distance])
                        cube([joint_size_x + joint_wall_thickness*2 - back_part_crop, joint_size_y + joint_wall_thickness*2, 7]);

                }

                hull() {
                    translate([-(joint_size_x + joint_wall_thickness*2)/2 + back_part_crop, - (joint_size_y  + joint_wall_thickness*2)/2, -plate_bearing_center_distance])
                        cube([joint_size_x + joint_wall_thickness*2 - back_part_crop, joint_size_y + joint_wall_thickness*2, 7]);

                    translate([0, 0 , -plate_bearing_center_distance-joint_size/2])
                        rotor_joint(2, thickness=joint_size);
                }
    // Vymezovaci podlozka pod motor, misto hlinikove 6.5mm silne podlozky



                    // Otvory pro pridelani motoru
                    translate([motor_distance, 0, -global_clearance/2])
                        rotate([0,0,45]){
                            for (i=[[0,1],[0,-1],[1,0], [-1,0]]) {
                                translate([i[0]*motor_mounting_diameter/2, i[1]*motor_mounting_diameter/2, -motor_sink]){
                                        cylinder(d2 = M3_screw_diameter*4, d1 = M3_screw_diameter*2, h = motor_sink, $fn = draft?10:60);
                                }
                            }
                        }
            }

            //otvory pro prisroubovani k pripravku
            for(i = [0:90:360]) {
                rotate([0, 0, i])
                translate([(ALU_profile_width/2+ALU_profile_holder_wall_thickness+M4_screw_diameter), (ALU_profile_width/2+ALU_profile_holder_wall_thickness+M4_screw_diameter), 0]) {
                    cylinder(d=M4_screw_diameter, h=300, $fn=20, center=true);
                    cylinder(d=M4_screw_diameter*2, h=200, $fn=20);
                }
            }

            //otvor pro matku sroubu rotoru
            translate([0, 0, -joint_size-plate_bearing_center_distance-global_clearance/2])
                cylinder(d=nut_diameter, h=nut_height+global_clearance/2);

            // otvor pro sroub rotoru
            translate([0, 0, -150])
                cylinder(d = rotor_axis_diameter, h = 300, $fn = draft ? 20 : 80);

            // otvor pro osu motoru
            translate([motor_distance, 0, -global_clearance/2-10])
                cylinder(d = motor_axis_diameter, h = plate_size_z + global_clearance + 10, $fn = draft ? 10 : 100);

            // otvor pro  remenici
            translate([motor_distance, 0, -global_clearance/2-10])
                cylinder(d = motor_puller_diameter, h = plate_size_z + global_clearance + 10, $fn = draft ? 10 : 100);


            // Otvory pro pridelani motoru
            translate([motor_distance, 0, -global_clearance/2])
                rotate([0,0,45]){
                    for (i=[[0,1],[0,-1],[1,0], [-1,0]]) {
                        translate([i[0]*motor_mounting_diameter/2, i[1]*motor_mounting_diameter/2, 0]){
                            translate([0,0,-13.3])
                                cylinder(d = motor_screw_diameter, h = plate_size_z + global_clearance + 10, , $fn = draft ? 10 : 50);
                            translate([0,0, plate_bearing_center_distance - 4.7])
                                cylinder(d = M3_nut_diameter, h = M3_screw_head_height, $fn = draft ? 10 : 50);
                        }
                    }
                }


            //Otvor na hallovu sondu
            translate([hall_distance - hall_length/2 + hall_length_offset, -hall_width/2, plate_size_z - hall_thickness])
                cube([hall_length, hall_width, hall_thickness+global_clearance]);


            translate([hall_distance + hall_length/2 + 2, -3,  plate_size_z - hall_thickness+1])
                cube([3, 6, 20]);

            translate([hall_distance + hall_length/2 + 2, -3, - plate_bearing_center_distance])
                translate([0,0, plate_size_z+8])
                    rotate([0,-40,0])
                        translate([0,0,-20])
                            cube([3, 6, 50]);

        }

}
888_1020();
